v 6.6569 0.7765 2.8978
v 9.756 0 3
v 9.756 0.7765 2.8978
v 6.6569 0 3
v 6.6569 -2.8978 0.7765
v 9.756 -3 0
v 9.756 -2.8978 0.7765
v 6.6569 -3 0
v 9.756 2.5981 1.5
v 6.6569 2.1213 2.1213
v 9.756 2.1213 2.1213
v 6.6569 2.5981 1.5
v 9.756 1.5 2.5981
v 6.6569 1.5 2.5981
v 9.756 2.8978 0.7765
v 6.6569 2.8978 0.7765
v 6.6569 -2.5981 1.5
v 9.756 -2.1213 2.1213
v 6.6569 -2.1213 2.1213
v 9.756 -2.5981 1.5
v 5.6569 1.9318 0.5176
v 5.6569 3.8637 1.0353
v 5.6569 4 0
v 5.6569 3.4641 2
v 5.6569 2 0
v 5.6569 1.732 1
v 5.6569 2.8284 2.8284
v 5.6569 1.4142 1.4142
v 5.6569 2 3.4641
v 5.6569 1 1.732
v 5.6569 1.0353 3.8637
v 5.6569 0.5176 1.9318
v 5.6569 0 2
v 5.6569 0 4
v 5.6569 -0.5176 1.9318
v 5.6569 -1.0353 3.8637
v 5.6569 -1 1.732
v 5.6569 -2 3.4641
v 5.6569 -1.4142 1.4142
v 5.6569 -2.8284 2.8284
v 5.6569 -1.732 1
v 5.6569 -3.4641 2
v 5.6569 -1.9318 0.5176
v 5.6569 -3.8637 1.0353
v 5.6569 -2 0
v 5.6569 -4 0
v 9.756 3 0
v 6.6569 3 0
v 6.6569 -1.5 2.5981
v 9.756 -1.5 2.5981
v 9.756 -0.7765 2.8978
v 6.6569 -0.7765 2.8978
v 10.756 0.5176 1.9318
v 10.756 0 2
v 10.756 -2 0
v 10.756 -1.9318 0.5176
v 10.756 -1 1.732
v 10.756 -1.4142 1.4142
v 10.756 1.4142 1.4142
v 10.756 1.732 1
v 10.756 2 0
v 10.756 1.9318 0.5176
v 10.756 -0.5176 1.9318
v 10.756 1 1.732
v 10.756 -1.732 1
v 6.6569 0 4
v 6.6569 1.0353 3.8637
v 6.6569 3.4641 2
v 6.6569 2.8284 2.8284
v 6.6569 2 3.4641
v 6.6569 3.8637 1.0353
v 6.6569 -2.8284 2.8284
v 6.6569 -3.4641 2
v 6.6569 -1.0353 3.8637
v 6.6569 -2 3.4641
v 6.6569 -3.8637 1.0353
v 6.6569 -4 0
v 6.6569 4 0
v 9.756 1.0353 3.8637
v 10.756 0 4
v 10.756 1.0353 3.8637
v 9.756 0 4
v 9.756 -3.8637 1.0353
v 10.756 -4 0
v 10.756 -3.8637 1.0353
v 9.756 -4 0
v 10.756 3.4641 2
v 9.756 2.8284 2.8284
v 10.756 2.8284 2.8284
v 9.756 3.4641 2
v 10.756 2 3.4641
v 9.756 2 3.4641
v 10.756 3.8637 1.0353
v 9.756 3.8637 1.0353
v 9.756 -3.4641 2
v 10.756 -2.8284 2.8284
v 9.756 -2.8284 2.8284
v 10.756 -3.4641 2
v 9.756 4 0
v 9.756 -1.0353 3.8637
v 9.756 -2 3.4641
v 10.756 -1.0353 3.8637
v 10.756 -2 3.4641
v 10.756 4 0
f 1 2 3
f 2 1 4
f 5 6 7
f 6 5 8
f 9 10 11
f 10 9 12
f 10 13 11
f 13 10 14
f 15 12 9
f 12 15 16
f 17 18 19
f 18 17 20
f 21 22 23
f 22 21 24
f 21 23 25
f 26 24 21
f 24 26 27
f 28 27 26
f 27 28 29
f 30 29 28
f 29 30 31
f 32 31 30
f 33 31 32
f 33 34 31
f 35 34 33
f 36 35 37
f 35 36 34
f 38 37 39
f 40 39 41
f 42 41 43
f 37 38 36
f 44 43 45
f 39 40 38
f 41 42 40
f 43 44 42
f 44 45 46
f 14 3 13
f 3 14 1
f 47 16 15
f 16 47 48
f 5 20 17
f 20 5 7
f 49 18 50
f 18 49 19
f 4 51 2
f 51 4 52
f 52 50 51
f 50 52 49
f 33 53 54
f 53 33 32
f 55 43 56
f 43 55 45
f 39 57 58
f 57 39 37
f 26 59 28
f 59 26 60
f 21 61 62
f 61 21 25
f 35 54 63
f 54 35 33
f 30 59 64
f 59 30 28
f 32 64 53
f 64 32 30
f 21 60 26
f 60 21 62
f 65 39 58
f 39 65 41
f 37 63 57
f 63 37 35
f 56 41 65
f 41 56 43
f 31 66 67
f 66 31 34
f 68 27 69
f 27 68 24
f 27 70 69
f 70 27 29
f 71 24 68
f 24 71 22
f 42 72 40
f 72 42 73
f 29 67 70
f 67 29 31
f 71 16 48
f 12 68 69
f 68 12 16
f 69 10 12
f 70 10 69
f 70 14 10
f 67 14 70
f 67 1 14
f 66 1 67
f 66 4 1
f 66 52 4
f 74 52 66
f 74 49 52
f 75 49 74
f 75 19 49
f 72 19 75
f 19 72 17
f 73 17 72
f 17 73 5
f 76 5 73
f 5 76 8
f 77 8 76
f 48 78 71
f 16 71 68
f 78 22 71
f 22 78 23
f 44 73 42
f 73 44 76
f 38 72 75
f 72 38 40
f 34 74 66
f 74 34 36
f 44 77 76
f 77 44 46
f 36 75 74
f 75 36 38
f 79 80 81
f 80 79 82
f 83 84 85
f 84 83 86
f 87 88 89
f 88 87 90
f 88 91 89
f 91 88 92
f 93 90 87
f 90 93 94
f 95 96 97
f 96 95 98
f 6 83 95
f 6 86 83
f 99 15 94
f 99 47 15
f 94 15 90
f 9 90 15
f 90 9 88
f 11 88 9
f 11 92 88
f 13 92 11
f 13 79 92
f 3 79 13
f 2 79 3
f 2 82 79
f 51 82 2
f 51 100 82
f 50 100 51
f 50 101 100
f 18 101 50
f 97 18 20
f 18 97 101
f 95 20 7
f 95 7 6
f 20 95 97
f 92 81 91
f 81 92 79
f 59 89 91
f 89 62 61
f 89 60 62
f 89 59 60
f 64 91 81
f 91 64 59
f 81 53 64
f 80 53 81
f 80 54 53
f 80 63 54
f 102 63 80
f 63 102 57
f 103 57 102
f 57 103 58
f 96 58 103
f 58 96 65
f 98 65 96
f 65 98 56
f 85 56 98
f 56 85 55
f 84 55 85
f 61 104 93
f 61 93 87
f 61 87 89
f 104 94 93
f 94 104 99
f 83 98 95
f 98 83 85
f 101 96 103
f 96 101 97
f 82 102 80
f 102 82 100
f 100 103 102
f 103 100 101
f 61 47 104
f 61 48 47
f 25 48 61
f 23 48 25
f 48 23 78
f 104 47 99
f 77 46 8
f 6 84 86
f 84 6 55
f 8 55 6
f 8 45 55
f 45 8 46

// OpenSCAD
// file: ../build_environments.scad
// build_environments.scad: modules to build level sections
//

module pool(diameter=10.0, wall_height=2.0, step_width=3.0, connections=[])
{
    difference() {
        union() {
        difference() {
            cylinder(h=0.5,r1=diameter+step_width,r2=diameter+step_width,$fn=48);
            translate([0,0,-0.1])
                cylinder(h=0.7,r1=diameter,r2=diameter,$fn=48);
        }
        difference() {
            cylinder(h=wall_height,r1=diameter+step_width+1.0,r2=diameter+step_width+1.0,$fn=48);
            translate([0,0,-0.1])
                cylinder(h=wall_height+0.2,r1=diameter+step_width,r2=diameter+step_width,$fn=48);
        }
        }
    
        for (c = connections)
        {
            rotate([0,90,0]) {
                angle = atan2(c[1],c[0]);
                rotate([-angle,0,0]) {
                    cylinder(h=diameter+5.0,r1=c[2],r2=c[2],$fn=48);
                }
            }
        }
    }
}

module straight(length=10.0, width=2.0, dy1=0.0, dy2=0.0, dz=0.0)
{
    dims = [0, 0, 0, 0, 0, (dz/length)];
    matrix = [
        [ 1, dims[0], dims[1], 0 ],
        [ dims[2], 1, dims[4], 0 ],
        [ dims[5], dims[3], 1, 0 ],
        [ 0, 0, 0, 1 ]
    ];
    multmatrix(matrix)
    difference() {
        translate([dy1,0,0])
        union() {
            rotate([0,90,0]) {
                difference() {
                    cylinder(h=(length-dy1-dy2),r1=width+1.0,r2=width+1.0,$fn=24);
                    translate([0,0,-0.1])
                        cylinder(h=(length-dy1-dy2+0.2),r1=width,r2=width,$fn=24);
                }
                difference() {
                    cylinder(h=1.0,r1=width+2.0,r2=width+2.0,$fn=24);
                    translate([0,0,-0.1])
                        cylinder(h=1.2,r1=width,r2=width,$fn=24);
                }
                translate([0,0,(length-dy1-dy2)-1.0]) {
                    difference() {
                        cylinder(h=1.0,r1=width+2.0,r2=width+2.0,$fn=24);
                        translate([0,0,-0.1])
                            cylinder(h=1.2,r1=width,r2=width,$fn=24);
                    }
                }
            }
        }
        translate([0,0,-(2*width+4.0)/2])
            cube([3*length,3*length,2*width+4.0],center=true);
    }
}

module curve(p0=[0,0], center=[0,0], dir=1, angle=0.0, width=2.0)
{
    radius = sqrt((p0[0]-center[0])*(p0[0]-center[0]) + (p0[1]-center[1])*(p0[1]-center[1]));
    if (dir == 0) {
        difference() {
            rotate([0,0,-90])
            difference() {
                rotate_extrude(angle = angle, convexity = 10, $fn=32)
                    translate([radius, 0, 0])
                        circle(r = width+1.0,$fn=24);
                rotate([0,0,-1.0])
                    rotate_extrude(angle = angle+2.0, convexity = 10, $fn=32)
                        translate([radius, 0, 0])
                            circle(r = width,$fn=24);
            }
            translate([0,0,-(2*width+4.0)/2])
                cube([5*radius,5*radius,2*width+4.0],center=true);
        }
    }
    else {
        difference() {
            rotate([0,0,90])
            difference() {
                rotate_extrude(angle = -angle, convexity = 10, $fn=32)
                    translate([radius, 0, 0])
                        circle(r = width+1.0,$fn=24);
                rotate([0,0,1.0])
                    rotate_extrude(angle = -angle-2.0, convexity = 10, $fn=32)
                        translate([radius, 0, 0])
                            circle(r = width,$fn=24);
            }
            translate([0,0,-(2*width+4.0)/2])
                cube([5*radius,5*radius,2*width+4.0],center=true);
        }
    }

}

// test pool
//pool(diameter=12.0000, wall_height=3.0000, step_width=3.0000, connections=[[0.0000,-26.0000,2.0000], [23.6074,0.0000,2.0000]]);

// test straight, slope
//straight(length=26.0000, width=2.0000, dy1=11.8322, dy2=6.7082, dz=0.0000);
//straight(length=29.1549, width=12.0000, dy1=0.0000, dy2=0.0000, dz=-15.0000);

// test curve
//curve(p0=[23.6074, 0.0000], center=[23.6074, 5.0000], dir=0, angle=60.1011, width=2.0000);
//curve(p0=[33.6426, 12.4219], center=[37.9771, 9.9295], dir=1, angle=120.4627, width=2.0000);
// main file
use <../build_environments.scad>;
straight(length=17.4642, width=2.0000, dy1=5.6569, dy2=6.7082, dz=0.0000);
